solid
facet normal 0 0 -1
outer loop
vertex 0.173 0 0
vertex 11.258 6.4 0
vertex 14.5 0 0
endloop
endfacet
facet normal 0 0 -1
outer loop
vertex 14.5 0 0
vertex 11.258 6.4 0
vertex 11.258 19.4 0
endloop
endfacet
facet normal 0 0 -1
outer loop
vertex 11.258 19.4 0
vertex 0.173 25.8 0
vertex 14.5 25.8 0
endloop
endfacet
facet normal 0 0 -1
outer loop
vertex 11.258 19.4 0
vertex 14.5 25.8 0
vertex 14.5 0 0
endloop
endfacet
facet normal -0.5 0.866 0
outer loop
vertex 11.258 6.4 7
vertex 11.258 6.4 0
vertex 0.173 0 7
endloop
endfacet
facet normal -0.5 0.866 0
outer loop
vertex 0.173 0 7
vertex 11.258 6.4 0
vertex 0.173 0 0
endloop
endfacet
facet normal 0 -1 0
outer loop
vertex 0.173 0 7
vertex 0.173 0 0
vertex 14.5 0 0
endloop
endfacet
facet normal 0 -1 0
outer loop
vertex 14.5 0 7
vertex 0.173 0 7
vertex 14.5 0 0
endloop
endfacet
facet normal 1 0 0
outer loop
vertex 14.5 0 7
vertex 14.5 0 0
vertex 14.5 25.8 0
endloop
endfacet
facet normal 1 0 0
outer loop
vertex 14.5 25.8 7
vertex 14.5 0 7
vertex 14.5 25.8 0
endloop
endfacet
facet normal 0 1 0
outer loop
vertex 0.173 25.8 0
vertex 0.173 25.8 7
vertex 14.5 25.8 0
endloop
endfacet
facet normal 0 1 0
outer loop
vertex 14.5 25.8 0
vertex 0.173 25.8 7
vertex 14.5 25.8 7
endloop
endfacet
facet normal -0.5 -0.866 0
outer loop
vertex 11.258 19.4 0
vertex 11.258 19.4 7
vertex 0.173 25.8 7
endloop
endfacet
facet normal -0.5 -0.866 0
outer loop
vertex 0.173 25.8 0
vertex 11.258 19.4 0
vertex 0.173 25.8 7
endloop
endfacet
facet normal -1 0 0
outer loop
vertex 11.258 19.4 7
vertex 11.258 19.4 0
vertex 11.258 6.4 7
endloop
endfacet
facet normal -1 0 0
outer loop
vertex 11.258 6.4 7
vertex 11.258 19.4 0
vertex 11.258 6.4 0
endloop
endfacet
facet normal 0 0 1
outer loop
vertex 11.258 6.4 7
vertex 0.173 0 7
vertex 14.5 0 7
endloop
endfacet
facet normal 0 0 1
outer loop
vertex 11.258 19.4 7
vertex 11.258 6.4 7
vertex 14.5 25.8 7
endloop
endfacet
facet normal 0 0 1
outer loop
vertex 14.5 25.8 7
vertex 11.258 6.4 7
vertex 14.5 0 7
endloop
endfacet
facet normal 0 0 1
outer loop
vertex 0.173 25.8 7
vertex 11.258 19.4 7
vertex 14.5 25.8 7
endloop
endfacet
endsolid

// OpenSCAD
difference () {
cube ([14.5,25.8,7]);
rotate (90,0,0)translate ([12.9,0,-1]) cylinder (9,13,13,$fa=60);
}
